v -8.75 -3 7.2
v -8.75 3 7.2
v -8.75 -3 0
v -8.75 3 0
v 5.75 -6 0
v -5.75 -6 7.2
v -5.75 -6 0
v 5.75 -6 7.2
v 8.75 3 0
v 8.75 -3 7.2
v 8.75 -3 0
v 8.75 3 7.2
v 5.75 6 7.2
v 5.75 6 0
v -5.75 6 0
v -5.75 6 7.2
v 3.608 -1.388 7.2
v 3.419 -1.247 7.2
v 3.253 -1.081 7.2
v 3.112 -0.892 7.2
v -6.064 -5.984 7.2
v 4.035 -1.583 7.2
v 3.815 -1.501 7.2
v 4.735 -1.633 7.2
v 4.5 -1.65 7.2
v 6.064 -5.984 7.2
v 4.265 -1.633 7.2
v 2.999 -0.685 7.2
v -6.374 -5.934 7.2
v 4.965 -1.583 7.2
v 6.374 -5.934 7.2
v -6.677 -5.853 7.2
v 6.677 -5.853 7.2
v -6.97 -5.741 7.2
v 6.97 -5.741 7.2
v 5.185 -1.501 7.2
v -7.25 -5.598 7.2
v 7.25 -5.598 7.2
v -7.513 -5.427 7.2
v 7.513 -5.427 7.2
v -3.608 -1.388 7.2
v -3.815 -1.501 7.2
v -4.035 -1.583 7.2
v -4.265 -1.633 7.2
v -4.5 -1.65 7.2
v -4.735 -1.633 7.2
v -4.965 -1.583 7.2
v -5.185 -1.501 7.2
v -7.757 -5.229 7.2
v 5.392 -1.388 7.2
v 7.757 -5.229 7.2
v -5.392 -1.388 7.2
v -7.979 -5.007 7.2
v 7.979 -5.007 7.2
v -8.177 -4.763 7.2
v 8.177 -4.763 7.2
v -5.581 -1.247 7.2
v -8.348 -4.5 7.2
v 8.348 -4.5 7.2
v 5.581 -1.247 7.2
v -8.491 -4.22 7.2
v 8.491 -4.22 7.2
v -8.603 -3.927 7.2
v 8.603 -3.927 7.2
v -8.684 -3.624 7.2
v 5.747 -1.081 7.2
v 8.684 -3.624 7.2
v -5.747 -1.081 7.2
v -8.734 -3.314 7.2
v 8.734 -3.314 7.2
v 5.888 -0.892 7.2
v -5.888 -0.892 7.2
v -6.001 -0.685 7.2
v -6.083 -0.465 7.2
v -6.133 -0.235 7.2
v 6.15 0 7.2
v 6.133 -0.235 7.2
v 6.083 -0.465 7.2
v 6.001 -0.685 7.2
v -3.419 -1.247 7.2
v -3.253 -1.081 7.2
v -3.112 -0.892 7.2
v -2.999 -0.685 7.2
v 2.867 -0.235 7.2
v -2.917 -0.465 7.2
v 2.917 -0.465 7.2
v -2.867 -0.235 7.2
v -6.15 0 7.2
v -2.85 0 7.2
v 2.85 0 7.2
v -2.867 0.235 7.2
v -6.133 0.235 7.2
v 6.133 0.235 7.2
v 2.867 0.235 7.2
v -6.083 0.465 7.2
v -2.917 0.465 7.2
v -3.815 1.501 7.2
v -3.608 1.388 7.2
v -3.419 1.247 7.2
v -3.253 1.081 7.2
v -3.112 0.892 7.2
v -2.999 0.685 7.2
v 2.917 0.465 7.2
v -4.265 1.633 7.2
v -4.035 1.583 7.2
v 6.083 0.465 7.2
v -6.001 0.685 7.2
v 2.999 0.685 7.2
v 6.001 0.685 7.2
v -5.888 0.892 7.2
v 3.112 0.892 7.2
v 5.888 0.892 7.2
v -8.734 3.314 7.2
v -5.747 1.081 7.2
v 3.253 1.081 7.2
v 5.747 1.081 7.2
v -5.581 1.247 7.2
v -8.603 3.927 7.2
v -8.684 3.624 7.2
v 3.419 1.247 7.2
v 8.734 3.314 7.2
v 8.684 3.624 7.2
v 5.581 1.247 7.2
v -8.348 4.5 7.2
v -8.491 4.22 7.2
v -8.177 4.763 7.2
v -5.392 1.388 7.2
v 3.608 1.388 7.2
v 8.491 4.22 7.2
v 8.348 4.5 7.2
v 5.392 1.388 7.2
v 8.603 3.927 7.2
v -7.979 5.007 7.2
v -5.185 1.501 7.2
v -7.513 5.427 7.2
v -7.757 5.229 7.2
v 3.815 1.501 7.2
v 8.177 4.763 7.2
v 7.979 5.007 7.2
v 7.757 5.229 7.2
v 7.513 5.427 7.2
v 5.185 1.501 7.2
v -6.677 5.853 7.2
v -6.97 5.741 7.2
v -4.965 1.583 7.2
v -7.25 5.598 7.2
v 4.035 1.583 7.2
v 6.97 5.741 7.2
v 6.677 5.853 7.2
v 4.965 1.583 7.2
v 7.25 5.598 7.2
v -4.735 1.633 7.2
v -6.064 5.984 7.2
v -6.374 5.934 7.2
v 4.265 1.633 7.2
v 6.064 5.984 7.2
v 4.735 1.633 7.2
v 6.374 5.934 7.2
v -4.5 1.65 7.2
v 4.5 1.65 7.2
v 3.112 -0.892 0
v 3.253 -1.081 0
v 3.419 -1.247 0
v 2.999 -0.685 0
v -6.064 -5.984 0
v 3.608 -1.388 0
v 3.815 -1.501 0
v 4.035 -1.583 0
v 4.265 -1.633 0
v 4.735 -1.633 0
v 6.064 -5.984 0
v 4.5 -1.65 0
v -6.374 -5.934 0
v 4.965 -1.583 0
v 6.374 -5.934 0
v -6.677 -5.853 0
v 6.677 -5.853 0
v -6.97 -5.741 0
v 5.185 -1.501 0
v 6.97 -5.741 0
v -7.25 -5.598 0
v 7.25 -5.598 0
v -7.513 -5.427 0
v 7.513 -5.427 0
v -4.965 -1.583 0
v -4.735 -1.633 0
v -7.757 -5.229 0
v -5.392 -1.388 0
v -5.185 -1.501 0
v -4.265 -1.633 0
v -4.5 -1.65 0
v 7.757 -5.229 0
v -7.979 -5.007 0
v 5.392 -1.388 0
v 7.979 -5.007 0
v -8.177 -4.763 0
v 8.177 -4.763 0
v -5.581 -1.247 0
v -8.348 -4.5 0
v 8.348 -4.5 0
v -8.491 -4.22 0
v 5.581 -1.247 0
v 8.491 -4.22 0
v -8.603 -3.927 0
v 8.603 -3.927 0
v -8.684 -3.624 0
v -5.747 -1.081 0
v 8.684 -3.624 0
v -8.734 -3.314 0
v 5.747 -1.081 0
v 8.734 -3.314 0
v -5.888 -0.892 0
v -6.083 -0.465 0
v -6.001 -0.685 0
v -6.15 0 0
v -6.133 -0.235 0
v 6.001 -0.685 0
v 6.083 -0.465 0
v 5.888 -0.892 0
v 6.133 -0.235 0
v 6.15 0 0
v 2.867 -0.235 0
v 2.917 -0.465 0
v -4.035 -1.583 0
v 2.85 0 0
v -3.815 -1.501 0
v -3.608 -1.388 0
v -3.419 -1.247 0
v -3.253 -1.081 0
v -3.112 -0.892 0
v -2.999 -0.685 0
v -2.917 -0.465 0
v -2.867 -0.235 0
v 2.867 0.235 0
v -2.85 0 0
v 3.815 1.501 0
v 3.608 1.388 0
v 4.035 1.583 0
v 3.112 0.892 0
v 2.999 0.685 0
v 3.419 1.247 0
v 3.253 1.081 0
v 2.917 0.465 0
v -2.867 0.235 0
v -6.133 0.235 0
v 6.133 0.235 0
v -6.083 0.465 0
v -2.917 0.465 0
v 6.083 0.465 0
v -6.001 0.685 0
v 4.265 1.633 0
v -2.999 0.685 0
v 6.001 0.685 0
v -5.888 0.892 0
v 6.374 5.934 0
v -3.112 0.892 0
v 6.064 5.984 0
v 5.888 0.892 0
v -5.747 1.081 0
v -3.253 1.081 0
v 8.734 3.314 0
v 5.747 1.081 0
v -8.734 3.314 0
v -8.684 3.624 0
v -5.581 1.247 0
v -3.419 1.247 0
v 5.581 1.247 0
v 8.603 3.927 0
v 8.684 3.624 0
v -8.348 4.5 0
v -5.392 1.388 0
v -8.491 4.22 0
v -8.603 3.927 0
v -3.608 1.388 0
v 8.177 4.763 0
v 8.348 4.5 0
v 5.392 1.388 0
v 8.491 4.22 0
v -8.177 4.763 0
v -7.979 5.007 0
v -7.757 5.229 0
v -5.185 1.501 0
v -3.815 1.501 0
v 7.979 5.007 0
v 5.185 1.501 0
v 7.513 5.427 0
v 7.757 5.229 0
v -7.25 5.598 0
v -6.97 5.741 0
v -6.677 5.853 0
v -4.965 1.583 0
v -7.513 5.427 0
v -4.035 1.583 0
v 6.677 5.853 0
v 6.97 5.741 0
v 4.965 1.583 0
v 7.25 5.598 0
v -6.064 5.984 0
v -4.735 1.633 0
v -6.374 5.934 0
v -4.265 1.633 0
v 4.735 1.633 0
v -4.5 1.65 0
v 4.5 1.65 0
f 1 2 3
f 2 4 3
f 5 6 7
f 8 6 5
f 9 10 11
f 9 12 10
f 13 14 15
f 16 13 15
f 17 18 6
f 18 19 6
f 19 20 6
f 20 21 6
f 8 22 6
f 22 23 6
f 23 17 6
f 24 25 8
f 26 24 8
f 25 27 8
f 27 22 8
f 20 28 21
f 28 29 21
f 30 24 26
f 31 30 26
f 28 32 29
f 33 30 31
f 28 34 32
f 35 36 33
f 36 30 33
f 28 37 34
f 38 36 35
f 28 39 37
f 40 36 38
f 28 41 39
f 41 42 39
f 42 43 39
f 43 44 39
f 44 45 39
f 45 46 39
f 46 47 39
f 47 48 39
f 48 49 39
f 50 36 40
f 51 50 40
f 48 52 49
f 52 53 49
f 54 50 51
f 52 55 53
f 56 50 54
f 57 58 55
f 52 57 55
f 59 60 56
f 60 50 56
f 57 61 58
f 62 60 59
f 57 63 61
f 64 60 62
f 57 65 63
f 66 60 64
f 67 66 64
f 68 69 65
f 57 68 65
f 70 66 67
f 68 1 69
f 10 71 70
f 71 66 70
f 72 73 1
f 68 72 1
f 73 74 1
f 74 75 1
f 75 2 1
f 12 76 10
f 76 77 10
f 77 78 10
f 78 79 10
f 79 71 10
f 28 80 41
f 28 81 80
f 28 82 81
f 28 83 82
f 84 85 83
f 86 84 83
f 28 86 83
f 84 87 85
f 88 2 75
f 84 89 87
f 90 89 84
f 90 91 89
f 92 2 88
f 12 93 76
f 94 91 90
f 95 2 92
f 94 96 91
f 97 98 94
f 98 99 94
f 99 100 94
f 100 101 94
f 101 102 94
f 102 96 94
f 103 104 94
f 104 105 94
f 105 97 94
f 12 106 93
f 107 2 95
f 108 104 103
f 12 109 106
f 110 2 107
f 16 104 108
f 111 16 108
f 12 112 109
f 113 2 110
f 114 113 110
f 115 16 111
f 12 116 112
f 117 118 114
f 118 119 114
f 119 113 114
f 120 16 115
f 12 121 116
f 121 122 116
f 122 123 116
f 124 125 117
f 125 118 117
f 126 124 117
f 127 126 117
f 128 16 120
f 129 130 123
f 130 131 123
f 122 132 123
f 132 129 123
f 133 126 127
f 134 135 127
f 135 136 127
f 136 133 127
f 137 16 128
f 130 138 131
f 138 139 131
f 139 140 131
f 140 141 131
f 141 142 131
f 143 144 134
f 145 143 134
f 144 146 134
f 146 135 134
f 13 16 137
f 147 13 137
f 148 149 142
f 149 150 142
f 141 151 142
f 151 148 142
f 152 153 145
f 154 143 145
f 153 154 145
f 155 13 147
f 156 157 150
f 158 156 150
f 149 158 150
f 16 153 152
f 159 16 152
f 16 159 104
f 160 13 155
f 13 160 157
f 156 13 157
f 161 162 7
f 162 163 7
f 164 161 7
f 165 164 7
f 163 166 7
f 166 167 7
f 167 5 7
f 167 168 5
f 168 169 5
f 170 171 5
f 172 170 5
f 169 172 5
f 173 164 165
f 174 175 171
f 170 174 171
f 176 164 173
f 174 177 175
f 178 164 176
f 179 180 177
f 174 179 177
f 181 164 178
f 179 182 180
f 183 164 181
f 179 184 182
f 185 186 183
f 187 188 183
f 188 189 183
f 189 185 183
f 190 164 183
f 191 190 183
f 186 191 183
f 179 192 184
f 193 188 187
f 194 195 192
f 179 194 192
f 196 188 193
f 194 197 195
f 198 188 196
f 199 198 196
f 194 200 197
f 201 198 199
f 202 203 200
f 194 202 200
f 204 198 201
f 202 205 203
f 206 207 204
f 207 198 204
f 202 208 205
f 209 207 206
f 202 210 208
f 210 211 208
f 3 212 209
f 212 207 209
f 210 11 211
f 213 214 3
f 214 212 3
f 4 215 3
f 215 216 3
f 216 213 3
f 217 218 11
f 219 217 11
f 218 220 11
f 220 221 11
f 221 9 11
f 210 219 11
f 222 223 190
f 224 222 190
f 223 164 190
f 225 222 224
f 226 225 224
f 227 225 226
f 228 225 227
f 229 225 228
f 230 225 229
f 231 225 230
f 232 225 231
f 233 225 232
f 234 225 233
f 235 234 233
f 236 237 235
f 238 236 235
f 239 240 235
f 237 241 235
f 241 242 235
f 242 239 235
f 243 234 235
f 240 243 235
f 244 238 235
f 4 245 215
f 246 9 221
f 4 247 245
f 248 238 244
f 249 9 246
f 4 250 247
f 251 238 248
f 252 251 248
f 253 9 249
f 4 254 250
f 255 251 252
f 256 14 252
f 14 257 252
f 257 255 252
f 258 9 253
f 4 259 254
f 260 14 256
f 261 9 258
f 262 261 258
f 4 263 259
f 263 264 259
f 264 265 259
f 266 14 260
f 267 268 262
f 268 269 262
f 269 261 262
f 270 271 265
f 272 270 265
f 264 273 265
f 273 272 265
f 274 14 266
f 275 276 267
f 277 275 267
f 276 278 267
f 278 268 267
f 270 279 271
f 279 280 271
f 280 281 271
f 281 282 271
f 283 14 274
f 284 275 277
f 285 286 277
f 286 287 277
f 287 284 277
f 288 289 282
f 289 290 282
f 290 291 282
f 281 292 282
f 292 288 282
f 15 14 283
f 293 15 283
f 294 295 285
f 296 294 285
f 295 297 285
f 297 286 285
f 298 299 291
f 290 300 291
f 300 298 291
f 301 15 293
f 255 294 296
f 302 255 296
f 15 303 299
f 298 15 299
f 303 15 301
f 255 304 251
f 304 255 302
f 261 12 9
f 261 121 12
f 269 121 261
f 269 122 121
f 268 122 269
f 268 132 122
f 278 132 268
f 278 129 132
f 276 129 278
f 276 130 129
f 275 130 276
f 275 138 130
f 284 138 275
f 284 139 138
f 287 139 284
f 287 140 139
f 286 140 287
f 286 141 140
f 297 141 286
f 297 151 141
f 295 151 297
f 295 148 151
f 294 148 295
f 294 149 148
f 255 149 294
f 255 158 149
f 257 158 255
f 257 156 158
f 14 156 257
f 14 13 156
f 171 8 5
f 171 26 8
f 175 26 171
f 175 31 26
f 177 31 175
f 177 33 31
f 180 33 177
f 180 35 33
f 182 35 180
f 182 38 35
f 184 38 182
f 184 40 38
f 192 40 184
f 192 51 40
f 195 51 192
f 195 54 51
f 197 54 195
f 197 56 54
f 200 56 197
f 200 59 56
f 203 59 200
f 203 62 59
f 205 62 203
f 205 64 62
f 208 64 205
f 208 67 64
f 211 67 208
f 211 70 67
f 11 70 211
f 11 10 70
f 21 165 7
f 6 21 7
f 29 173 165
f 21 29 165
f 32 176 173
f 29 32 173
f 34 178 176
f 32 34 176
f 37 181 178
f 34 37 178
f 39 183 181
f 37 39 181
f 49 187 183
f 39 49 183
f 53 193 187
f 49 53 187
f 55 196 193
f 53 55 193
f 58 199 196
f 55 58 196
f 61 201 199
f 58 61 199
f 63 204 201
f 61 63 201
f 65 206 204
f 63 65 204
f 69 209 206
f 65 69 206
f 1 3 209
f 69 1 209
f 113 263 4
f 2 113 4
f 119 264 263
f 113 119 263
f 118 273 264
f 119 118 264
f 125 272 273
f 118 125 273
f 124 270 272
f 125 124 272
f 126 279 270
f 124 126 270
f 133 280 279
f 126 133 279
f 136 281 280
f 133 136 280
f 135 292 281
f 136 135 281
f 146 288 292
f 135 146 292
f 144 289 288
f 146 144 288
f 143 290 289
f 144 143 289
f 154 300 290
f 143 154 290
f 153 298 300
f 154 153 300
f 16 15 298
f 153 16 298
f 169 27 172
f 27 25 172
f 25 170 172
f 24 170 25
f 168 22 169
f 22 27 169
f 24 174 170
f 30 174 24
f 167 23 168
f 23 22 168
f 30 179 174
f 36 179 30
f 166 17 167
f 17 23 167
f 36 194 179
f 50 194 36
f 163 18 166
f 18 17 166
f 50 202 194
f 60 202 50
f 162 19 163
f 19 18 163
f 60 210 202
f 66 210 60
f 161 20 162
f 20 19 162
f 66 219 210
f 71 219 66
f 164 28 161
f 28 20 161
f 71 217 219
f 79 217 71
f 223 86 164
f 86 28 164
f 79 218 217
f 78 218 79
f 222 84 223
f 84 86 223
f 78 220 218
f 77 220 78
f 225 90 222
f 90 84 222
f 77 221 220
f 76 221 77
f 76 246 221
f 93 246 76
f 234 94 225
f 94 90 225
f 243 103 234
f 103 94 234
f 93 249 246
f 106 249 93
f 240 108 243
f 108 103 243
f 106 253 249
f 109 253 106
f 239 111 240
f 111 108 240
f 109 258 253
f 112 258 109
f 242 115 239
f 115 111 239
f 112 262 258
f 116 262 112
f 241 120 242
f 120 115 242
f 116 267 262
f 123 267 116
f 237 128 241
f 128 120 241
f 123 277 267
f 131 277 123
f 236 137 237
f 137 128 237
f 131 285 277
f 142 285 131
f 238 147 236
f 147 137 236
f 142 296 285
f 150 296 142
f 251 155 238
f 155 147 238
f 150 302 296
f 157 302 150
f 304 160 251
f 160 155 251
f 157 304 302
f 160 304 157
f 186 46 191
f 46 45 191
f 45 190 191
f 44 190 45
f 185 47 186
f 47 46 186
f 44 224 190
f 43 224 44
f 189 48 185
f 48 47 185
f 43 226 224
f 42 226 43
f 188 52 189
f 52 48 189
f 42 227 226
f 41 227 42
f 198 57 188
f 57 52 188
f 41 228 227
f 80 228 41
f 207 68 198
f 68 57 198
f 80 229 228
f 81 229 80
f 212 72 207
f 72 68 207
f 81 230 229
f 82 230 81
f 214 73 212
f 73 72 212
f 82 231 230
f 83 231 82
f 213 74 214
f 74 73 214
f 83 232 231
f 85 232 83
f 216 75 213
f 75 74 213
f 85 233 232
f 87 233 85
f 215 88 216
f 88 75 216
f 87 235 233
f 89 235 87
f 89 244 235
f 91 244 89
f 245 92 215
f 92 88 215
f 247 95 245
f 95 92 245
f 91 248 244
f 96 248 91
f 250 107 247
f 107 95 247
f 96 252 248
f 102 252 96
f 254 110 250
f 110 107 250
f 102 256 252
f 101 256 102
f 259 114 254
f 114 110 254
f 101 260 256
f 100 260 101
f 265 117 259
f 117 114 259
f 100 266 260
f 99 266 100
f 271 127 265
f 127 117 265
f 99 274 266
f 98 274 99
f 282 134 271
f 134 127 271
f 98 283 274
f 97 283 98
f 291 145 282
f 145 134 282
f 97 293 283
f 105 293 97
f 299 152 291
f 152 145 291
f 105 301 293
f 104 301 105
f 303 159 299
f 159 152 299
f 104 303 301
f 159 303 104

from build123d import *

# Parameters (mm, degrees)
SKETCH1_W           = 17.5
SKETCH1_H           = 12
BOSS_EXTRUDE1_DEPTH = 7.2
FILLET1_R           = 3
SKETCH2_R           = 1.65
CUT_EXTRUDE1_DEPTH  = 8.2


with BuildPart() as part:
    # Sketch1 → Boss-Extrude1 (new body)
    with BuildSketch(Plane.XY):
        Rectangle(SKETCH1_W, SKETCH1_H)
    extrude(amount=BOSS_EXTRUDE1_DEPTH)

    # Fillet1
    fillet1_edges = [part.edges().sort_by_distance(p)[0] for p in [
        (-8.75, 6, 3.6),
        (8.75, 6, 3.6),
        (8.75, -6, 3.6),
        (-8.75, -6, 3.6),
    ]]
    fillet(fillet1_edges, radius=FILLET1_R)

    # Sketch2 → Cut-Extrude1 (cut, through all)
    with BuildSketch(Plane.XY.offset(7.2)):
        with Locations((-4.5, 0)):
            Circle(SKETCH2_R)
        with Locations((4.5, 0)):
            Circle(SKETCH2_R)
    extrude(amount=-CUT_EXTRUDE1_DEPTH, mode=Mode.SUBTRACT)


solid = part.part
